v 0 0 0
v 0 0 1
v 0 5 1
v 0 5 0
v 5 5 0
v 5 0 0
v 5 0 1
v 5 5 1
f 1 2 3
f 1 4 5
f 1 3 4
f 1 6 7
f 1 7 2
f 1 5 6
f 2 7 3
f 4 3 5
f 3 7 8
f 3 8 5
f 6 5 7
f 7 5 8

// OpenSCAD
/* Warning, this is a very basic generator with a lot of approximation 
input data : [VQFN, S8B, 5x5x1mm, 32, , A, C04-21402A]
generated by com.zoubworld.electronics.cad.model3d.Basic
Date : Sun Feb 15 10:50:49 CET 2026
*/

//body
color("black")
translate([0,0,0])
cube([5.0,5.0,1.0], center=false);
